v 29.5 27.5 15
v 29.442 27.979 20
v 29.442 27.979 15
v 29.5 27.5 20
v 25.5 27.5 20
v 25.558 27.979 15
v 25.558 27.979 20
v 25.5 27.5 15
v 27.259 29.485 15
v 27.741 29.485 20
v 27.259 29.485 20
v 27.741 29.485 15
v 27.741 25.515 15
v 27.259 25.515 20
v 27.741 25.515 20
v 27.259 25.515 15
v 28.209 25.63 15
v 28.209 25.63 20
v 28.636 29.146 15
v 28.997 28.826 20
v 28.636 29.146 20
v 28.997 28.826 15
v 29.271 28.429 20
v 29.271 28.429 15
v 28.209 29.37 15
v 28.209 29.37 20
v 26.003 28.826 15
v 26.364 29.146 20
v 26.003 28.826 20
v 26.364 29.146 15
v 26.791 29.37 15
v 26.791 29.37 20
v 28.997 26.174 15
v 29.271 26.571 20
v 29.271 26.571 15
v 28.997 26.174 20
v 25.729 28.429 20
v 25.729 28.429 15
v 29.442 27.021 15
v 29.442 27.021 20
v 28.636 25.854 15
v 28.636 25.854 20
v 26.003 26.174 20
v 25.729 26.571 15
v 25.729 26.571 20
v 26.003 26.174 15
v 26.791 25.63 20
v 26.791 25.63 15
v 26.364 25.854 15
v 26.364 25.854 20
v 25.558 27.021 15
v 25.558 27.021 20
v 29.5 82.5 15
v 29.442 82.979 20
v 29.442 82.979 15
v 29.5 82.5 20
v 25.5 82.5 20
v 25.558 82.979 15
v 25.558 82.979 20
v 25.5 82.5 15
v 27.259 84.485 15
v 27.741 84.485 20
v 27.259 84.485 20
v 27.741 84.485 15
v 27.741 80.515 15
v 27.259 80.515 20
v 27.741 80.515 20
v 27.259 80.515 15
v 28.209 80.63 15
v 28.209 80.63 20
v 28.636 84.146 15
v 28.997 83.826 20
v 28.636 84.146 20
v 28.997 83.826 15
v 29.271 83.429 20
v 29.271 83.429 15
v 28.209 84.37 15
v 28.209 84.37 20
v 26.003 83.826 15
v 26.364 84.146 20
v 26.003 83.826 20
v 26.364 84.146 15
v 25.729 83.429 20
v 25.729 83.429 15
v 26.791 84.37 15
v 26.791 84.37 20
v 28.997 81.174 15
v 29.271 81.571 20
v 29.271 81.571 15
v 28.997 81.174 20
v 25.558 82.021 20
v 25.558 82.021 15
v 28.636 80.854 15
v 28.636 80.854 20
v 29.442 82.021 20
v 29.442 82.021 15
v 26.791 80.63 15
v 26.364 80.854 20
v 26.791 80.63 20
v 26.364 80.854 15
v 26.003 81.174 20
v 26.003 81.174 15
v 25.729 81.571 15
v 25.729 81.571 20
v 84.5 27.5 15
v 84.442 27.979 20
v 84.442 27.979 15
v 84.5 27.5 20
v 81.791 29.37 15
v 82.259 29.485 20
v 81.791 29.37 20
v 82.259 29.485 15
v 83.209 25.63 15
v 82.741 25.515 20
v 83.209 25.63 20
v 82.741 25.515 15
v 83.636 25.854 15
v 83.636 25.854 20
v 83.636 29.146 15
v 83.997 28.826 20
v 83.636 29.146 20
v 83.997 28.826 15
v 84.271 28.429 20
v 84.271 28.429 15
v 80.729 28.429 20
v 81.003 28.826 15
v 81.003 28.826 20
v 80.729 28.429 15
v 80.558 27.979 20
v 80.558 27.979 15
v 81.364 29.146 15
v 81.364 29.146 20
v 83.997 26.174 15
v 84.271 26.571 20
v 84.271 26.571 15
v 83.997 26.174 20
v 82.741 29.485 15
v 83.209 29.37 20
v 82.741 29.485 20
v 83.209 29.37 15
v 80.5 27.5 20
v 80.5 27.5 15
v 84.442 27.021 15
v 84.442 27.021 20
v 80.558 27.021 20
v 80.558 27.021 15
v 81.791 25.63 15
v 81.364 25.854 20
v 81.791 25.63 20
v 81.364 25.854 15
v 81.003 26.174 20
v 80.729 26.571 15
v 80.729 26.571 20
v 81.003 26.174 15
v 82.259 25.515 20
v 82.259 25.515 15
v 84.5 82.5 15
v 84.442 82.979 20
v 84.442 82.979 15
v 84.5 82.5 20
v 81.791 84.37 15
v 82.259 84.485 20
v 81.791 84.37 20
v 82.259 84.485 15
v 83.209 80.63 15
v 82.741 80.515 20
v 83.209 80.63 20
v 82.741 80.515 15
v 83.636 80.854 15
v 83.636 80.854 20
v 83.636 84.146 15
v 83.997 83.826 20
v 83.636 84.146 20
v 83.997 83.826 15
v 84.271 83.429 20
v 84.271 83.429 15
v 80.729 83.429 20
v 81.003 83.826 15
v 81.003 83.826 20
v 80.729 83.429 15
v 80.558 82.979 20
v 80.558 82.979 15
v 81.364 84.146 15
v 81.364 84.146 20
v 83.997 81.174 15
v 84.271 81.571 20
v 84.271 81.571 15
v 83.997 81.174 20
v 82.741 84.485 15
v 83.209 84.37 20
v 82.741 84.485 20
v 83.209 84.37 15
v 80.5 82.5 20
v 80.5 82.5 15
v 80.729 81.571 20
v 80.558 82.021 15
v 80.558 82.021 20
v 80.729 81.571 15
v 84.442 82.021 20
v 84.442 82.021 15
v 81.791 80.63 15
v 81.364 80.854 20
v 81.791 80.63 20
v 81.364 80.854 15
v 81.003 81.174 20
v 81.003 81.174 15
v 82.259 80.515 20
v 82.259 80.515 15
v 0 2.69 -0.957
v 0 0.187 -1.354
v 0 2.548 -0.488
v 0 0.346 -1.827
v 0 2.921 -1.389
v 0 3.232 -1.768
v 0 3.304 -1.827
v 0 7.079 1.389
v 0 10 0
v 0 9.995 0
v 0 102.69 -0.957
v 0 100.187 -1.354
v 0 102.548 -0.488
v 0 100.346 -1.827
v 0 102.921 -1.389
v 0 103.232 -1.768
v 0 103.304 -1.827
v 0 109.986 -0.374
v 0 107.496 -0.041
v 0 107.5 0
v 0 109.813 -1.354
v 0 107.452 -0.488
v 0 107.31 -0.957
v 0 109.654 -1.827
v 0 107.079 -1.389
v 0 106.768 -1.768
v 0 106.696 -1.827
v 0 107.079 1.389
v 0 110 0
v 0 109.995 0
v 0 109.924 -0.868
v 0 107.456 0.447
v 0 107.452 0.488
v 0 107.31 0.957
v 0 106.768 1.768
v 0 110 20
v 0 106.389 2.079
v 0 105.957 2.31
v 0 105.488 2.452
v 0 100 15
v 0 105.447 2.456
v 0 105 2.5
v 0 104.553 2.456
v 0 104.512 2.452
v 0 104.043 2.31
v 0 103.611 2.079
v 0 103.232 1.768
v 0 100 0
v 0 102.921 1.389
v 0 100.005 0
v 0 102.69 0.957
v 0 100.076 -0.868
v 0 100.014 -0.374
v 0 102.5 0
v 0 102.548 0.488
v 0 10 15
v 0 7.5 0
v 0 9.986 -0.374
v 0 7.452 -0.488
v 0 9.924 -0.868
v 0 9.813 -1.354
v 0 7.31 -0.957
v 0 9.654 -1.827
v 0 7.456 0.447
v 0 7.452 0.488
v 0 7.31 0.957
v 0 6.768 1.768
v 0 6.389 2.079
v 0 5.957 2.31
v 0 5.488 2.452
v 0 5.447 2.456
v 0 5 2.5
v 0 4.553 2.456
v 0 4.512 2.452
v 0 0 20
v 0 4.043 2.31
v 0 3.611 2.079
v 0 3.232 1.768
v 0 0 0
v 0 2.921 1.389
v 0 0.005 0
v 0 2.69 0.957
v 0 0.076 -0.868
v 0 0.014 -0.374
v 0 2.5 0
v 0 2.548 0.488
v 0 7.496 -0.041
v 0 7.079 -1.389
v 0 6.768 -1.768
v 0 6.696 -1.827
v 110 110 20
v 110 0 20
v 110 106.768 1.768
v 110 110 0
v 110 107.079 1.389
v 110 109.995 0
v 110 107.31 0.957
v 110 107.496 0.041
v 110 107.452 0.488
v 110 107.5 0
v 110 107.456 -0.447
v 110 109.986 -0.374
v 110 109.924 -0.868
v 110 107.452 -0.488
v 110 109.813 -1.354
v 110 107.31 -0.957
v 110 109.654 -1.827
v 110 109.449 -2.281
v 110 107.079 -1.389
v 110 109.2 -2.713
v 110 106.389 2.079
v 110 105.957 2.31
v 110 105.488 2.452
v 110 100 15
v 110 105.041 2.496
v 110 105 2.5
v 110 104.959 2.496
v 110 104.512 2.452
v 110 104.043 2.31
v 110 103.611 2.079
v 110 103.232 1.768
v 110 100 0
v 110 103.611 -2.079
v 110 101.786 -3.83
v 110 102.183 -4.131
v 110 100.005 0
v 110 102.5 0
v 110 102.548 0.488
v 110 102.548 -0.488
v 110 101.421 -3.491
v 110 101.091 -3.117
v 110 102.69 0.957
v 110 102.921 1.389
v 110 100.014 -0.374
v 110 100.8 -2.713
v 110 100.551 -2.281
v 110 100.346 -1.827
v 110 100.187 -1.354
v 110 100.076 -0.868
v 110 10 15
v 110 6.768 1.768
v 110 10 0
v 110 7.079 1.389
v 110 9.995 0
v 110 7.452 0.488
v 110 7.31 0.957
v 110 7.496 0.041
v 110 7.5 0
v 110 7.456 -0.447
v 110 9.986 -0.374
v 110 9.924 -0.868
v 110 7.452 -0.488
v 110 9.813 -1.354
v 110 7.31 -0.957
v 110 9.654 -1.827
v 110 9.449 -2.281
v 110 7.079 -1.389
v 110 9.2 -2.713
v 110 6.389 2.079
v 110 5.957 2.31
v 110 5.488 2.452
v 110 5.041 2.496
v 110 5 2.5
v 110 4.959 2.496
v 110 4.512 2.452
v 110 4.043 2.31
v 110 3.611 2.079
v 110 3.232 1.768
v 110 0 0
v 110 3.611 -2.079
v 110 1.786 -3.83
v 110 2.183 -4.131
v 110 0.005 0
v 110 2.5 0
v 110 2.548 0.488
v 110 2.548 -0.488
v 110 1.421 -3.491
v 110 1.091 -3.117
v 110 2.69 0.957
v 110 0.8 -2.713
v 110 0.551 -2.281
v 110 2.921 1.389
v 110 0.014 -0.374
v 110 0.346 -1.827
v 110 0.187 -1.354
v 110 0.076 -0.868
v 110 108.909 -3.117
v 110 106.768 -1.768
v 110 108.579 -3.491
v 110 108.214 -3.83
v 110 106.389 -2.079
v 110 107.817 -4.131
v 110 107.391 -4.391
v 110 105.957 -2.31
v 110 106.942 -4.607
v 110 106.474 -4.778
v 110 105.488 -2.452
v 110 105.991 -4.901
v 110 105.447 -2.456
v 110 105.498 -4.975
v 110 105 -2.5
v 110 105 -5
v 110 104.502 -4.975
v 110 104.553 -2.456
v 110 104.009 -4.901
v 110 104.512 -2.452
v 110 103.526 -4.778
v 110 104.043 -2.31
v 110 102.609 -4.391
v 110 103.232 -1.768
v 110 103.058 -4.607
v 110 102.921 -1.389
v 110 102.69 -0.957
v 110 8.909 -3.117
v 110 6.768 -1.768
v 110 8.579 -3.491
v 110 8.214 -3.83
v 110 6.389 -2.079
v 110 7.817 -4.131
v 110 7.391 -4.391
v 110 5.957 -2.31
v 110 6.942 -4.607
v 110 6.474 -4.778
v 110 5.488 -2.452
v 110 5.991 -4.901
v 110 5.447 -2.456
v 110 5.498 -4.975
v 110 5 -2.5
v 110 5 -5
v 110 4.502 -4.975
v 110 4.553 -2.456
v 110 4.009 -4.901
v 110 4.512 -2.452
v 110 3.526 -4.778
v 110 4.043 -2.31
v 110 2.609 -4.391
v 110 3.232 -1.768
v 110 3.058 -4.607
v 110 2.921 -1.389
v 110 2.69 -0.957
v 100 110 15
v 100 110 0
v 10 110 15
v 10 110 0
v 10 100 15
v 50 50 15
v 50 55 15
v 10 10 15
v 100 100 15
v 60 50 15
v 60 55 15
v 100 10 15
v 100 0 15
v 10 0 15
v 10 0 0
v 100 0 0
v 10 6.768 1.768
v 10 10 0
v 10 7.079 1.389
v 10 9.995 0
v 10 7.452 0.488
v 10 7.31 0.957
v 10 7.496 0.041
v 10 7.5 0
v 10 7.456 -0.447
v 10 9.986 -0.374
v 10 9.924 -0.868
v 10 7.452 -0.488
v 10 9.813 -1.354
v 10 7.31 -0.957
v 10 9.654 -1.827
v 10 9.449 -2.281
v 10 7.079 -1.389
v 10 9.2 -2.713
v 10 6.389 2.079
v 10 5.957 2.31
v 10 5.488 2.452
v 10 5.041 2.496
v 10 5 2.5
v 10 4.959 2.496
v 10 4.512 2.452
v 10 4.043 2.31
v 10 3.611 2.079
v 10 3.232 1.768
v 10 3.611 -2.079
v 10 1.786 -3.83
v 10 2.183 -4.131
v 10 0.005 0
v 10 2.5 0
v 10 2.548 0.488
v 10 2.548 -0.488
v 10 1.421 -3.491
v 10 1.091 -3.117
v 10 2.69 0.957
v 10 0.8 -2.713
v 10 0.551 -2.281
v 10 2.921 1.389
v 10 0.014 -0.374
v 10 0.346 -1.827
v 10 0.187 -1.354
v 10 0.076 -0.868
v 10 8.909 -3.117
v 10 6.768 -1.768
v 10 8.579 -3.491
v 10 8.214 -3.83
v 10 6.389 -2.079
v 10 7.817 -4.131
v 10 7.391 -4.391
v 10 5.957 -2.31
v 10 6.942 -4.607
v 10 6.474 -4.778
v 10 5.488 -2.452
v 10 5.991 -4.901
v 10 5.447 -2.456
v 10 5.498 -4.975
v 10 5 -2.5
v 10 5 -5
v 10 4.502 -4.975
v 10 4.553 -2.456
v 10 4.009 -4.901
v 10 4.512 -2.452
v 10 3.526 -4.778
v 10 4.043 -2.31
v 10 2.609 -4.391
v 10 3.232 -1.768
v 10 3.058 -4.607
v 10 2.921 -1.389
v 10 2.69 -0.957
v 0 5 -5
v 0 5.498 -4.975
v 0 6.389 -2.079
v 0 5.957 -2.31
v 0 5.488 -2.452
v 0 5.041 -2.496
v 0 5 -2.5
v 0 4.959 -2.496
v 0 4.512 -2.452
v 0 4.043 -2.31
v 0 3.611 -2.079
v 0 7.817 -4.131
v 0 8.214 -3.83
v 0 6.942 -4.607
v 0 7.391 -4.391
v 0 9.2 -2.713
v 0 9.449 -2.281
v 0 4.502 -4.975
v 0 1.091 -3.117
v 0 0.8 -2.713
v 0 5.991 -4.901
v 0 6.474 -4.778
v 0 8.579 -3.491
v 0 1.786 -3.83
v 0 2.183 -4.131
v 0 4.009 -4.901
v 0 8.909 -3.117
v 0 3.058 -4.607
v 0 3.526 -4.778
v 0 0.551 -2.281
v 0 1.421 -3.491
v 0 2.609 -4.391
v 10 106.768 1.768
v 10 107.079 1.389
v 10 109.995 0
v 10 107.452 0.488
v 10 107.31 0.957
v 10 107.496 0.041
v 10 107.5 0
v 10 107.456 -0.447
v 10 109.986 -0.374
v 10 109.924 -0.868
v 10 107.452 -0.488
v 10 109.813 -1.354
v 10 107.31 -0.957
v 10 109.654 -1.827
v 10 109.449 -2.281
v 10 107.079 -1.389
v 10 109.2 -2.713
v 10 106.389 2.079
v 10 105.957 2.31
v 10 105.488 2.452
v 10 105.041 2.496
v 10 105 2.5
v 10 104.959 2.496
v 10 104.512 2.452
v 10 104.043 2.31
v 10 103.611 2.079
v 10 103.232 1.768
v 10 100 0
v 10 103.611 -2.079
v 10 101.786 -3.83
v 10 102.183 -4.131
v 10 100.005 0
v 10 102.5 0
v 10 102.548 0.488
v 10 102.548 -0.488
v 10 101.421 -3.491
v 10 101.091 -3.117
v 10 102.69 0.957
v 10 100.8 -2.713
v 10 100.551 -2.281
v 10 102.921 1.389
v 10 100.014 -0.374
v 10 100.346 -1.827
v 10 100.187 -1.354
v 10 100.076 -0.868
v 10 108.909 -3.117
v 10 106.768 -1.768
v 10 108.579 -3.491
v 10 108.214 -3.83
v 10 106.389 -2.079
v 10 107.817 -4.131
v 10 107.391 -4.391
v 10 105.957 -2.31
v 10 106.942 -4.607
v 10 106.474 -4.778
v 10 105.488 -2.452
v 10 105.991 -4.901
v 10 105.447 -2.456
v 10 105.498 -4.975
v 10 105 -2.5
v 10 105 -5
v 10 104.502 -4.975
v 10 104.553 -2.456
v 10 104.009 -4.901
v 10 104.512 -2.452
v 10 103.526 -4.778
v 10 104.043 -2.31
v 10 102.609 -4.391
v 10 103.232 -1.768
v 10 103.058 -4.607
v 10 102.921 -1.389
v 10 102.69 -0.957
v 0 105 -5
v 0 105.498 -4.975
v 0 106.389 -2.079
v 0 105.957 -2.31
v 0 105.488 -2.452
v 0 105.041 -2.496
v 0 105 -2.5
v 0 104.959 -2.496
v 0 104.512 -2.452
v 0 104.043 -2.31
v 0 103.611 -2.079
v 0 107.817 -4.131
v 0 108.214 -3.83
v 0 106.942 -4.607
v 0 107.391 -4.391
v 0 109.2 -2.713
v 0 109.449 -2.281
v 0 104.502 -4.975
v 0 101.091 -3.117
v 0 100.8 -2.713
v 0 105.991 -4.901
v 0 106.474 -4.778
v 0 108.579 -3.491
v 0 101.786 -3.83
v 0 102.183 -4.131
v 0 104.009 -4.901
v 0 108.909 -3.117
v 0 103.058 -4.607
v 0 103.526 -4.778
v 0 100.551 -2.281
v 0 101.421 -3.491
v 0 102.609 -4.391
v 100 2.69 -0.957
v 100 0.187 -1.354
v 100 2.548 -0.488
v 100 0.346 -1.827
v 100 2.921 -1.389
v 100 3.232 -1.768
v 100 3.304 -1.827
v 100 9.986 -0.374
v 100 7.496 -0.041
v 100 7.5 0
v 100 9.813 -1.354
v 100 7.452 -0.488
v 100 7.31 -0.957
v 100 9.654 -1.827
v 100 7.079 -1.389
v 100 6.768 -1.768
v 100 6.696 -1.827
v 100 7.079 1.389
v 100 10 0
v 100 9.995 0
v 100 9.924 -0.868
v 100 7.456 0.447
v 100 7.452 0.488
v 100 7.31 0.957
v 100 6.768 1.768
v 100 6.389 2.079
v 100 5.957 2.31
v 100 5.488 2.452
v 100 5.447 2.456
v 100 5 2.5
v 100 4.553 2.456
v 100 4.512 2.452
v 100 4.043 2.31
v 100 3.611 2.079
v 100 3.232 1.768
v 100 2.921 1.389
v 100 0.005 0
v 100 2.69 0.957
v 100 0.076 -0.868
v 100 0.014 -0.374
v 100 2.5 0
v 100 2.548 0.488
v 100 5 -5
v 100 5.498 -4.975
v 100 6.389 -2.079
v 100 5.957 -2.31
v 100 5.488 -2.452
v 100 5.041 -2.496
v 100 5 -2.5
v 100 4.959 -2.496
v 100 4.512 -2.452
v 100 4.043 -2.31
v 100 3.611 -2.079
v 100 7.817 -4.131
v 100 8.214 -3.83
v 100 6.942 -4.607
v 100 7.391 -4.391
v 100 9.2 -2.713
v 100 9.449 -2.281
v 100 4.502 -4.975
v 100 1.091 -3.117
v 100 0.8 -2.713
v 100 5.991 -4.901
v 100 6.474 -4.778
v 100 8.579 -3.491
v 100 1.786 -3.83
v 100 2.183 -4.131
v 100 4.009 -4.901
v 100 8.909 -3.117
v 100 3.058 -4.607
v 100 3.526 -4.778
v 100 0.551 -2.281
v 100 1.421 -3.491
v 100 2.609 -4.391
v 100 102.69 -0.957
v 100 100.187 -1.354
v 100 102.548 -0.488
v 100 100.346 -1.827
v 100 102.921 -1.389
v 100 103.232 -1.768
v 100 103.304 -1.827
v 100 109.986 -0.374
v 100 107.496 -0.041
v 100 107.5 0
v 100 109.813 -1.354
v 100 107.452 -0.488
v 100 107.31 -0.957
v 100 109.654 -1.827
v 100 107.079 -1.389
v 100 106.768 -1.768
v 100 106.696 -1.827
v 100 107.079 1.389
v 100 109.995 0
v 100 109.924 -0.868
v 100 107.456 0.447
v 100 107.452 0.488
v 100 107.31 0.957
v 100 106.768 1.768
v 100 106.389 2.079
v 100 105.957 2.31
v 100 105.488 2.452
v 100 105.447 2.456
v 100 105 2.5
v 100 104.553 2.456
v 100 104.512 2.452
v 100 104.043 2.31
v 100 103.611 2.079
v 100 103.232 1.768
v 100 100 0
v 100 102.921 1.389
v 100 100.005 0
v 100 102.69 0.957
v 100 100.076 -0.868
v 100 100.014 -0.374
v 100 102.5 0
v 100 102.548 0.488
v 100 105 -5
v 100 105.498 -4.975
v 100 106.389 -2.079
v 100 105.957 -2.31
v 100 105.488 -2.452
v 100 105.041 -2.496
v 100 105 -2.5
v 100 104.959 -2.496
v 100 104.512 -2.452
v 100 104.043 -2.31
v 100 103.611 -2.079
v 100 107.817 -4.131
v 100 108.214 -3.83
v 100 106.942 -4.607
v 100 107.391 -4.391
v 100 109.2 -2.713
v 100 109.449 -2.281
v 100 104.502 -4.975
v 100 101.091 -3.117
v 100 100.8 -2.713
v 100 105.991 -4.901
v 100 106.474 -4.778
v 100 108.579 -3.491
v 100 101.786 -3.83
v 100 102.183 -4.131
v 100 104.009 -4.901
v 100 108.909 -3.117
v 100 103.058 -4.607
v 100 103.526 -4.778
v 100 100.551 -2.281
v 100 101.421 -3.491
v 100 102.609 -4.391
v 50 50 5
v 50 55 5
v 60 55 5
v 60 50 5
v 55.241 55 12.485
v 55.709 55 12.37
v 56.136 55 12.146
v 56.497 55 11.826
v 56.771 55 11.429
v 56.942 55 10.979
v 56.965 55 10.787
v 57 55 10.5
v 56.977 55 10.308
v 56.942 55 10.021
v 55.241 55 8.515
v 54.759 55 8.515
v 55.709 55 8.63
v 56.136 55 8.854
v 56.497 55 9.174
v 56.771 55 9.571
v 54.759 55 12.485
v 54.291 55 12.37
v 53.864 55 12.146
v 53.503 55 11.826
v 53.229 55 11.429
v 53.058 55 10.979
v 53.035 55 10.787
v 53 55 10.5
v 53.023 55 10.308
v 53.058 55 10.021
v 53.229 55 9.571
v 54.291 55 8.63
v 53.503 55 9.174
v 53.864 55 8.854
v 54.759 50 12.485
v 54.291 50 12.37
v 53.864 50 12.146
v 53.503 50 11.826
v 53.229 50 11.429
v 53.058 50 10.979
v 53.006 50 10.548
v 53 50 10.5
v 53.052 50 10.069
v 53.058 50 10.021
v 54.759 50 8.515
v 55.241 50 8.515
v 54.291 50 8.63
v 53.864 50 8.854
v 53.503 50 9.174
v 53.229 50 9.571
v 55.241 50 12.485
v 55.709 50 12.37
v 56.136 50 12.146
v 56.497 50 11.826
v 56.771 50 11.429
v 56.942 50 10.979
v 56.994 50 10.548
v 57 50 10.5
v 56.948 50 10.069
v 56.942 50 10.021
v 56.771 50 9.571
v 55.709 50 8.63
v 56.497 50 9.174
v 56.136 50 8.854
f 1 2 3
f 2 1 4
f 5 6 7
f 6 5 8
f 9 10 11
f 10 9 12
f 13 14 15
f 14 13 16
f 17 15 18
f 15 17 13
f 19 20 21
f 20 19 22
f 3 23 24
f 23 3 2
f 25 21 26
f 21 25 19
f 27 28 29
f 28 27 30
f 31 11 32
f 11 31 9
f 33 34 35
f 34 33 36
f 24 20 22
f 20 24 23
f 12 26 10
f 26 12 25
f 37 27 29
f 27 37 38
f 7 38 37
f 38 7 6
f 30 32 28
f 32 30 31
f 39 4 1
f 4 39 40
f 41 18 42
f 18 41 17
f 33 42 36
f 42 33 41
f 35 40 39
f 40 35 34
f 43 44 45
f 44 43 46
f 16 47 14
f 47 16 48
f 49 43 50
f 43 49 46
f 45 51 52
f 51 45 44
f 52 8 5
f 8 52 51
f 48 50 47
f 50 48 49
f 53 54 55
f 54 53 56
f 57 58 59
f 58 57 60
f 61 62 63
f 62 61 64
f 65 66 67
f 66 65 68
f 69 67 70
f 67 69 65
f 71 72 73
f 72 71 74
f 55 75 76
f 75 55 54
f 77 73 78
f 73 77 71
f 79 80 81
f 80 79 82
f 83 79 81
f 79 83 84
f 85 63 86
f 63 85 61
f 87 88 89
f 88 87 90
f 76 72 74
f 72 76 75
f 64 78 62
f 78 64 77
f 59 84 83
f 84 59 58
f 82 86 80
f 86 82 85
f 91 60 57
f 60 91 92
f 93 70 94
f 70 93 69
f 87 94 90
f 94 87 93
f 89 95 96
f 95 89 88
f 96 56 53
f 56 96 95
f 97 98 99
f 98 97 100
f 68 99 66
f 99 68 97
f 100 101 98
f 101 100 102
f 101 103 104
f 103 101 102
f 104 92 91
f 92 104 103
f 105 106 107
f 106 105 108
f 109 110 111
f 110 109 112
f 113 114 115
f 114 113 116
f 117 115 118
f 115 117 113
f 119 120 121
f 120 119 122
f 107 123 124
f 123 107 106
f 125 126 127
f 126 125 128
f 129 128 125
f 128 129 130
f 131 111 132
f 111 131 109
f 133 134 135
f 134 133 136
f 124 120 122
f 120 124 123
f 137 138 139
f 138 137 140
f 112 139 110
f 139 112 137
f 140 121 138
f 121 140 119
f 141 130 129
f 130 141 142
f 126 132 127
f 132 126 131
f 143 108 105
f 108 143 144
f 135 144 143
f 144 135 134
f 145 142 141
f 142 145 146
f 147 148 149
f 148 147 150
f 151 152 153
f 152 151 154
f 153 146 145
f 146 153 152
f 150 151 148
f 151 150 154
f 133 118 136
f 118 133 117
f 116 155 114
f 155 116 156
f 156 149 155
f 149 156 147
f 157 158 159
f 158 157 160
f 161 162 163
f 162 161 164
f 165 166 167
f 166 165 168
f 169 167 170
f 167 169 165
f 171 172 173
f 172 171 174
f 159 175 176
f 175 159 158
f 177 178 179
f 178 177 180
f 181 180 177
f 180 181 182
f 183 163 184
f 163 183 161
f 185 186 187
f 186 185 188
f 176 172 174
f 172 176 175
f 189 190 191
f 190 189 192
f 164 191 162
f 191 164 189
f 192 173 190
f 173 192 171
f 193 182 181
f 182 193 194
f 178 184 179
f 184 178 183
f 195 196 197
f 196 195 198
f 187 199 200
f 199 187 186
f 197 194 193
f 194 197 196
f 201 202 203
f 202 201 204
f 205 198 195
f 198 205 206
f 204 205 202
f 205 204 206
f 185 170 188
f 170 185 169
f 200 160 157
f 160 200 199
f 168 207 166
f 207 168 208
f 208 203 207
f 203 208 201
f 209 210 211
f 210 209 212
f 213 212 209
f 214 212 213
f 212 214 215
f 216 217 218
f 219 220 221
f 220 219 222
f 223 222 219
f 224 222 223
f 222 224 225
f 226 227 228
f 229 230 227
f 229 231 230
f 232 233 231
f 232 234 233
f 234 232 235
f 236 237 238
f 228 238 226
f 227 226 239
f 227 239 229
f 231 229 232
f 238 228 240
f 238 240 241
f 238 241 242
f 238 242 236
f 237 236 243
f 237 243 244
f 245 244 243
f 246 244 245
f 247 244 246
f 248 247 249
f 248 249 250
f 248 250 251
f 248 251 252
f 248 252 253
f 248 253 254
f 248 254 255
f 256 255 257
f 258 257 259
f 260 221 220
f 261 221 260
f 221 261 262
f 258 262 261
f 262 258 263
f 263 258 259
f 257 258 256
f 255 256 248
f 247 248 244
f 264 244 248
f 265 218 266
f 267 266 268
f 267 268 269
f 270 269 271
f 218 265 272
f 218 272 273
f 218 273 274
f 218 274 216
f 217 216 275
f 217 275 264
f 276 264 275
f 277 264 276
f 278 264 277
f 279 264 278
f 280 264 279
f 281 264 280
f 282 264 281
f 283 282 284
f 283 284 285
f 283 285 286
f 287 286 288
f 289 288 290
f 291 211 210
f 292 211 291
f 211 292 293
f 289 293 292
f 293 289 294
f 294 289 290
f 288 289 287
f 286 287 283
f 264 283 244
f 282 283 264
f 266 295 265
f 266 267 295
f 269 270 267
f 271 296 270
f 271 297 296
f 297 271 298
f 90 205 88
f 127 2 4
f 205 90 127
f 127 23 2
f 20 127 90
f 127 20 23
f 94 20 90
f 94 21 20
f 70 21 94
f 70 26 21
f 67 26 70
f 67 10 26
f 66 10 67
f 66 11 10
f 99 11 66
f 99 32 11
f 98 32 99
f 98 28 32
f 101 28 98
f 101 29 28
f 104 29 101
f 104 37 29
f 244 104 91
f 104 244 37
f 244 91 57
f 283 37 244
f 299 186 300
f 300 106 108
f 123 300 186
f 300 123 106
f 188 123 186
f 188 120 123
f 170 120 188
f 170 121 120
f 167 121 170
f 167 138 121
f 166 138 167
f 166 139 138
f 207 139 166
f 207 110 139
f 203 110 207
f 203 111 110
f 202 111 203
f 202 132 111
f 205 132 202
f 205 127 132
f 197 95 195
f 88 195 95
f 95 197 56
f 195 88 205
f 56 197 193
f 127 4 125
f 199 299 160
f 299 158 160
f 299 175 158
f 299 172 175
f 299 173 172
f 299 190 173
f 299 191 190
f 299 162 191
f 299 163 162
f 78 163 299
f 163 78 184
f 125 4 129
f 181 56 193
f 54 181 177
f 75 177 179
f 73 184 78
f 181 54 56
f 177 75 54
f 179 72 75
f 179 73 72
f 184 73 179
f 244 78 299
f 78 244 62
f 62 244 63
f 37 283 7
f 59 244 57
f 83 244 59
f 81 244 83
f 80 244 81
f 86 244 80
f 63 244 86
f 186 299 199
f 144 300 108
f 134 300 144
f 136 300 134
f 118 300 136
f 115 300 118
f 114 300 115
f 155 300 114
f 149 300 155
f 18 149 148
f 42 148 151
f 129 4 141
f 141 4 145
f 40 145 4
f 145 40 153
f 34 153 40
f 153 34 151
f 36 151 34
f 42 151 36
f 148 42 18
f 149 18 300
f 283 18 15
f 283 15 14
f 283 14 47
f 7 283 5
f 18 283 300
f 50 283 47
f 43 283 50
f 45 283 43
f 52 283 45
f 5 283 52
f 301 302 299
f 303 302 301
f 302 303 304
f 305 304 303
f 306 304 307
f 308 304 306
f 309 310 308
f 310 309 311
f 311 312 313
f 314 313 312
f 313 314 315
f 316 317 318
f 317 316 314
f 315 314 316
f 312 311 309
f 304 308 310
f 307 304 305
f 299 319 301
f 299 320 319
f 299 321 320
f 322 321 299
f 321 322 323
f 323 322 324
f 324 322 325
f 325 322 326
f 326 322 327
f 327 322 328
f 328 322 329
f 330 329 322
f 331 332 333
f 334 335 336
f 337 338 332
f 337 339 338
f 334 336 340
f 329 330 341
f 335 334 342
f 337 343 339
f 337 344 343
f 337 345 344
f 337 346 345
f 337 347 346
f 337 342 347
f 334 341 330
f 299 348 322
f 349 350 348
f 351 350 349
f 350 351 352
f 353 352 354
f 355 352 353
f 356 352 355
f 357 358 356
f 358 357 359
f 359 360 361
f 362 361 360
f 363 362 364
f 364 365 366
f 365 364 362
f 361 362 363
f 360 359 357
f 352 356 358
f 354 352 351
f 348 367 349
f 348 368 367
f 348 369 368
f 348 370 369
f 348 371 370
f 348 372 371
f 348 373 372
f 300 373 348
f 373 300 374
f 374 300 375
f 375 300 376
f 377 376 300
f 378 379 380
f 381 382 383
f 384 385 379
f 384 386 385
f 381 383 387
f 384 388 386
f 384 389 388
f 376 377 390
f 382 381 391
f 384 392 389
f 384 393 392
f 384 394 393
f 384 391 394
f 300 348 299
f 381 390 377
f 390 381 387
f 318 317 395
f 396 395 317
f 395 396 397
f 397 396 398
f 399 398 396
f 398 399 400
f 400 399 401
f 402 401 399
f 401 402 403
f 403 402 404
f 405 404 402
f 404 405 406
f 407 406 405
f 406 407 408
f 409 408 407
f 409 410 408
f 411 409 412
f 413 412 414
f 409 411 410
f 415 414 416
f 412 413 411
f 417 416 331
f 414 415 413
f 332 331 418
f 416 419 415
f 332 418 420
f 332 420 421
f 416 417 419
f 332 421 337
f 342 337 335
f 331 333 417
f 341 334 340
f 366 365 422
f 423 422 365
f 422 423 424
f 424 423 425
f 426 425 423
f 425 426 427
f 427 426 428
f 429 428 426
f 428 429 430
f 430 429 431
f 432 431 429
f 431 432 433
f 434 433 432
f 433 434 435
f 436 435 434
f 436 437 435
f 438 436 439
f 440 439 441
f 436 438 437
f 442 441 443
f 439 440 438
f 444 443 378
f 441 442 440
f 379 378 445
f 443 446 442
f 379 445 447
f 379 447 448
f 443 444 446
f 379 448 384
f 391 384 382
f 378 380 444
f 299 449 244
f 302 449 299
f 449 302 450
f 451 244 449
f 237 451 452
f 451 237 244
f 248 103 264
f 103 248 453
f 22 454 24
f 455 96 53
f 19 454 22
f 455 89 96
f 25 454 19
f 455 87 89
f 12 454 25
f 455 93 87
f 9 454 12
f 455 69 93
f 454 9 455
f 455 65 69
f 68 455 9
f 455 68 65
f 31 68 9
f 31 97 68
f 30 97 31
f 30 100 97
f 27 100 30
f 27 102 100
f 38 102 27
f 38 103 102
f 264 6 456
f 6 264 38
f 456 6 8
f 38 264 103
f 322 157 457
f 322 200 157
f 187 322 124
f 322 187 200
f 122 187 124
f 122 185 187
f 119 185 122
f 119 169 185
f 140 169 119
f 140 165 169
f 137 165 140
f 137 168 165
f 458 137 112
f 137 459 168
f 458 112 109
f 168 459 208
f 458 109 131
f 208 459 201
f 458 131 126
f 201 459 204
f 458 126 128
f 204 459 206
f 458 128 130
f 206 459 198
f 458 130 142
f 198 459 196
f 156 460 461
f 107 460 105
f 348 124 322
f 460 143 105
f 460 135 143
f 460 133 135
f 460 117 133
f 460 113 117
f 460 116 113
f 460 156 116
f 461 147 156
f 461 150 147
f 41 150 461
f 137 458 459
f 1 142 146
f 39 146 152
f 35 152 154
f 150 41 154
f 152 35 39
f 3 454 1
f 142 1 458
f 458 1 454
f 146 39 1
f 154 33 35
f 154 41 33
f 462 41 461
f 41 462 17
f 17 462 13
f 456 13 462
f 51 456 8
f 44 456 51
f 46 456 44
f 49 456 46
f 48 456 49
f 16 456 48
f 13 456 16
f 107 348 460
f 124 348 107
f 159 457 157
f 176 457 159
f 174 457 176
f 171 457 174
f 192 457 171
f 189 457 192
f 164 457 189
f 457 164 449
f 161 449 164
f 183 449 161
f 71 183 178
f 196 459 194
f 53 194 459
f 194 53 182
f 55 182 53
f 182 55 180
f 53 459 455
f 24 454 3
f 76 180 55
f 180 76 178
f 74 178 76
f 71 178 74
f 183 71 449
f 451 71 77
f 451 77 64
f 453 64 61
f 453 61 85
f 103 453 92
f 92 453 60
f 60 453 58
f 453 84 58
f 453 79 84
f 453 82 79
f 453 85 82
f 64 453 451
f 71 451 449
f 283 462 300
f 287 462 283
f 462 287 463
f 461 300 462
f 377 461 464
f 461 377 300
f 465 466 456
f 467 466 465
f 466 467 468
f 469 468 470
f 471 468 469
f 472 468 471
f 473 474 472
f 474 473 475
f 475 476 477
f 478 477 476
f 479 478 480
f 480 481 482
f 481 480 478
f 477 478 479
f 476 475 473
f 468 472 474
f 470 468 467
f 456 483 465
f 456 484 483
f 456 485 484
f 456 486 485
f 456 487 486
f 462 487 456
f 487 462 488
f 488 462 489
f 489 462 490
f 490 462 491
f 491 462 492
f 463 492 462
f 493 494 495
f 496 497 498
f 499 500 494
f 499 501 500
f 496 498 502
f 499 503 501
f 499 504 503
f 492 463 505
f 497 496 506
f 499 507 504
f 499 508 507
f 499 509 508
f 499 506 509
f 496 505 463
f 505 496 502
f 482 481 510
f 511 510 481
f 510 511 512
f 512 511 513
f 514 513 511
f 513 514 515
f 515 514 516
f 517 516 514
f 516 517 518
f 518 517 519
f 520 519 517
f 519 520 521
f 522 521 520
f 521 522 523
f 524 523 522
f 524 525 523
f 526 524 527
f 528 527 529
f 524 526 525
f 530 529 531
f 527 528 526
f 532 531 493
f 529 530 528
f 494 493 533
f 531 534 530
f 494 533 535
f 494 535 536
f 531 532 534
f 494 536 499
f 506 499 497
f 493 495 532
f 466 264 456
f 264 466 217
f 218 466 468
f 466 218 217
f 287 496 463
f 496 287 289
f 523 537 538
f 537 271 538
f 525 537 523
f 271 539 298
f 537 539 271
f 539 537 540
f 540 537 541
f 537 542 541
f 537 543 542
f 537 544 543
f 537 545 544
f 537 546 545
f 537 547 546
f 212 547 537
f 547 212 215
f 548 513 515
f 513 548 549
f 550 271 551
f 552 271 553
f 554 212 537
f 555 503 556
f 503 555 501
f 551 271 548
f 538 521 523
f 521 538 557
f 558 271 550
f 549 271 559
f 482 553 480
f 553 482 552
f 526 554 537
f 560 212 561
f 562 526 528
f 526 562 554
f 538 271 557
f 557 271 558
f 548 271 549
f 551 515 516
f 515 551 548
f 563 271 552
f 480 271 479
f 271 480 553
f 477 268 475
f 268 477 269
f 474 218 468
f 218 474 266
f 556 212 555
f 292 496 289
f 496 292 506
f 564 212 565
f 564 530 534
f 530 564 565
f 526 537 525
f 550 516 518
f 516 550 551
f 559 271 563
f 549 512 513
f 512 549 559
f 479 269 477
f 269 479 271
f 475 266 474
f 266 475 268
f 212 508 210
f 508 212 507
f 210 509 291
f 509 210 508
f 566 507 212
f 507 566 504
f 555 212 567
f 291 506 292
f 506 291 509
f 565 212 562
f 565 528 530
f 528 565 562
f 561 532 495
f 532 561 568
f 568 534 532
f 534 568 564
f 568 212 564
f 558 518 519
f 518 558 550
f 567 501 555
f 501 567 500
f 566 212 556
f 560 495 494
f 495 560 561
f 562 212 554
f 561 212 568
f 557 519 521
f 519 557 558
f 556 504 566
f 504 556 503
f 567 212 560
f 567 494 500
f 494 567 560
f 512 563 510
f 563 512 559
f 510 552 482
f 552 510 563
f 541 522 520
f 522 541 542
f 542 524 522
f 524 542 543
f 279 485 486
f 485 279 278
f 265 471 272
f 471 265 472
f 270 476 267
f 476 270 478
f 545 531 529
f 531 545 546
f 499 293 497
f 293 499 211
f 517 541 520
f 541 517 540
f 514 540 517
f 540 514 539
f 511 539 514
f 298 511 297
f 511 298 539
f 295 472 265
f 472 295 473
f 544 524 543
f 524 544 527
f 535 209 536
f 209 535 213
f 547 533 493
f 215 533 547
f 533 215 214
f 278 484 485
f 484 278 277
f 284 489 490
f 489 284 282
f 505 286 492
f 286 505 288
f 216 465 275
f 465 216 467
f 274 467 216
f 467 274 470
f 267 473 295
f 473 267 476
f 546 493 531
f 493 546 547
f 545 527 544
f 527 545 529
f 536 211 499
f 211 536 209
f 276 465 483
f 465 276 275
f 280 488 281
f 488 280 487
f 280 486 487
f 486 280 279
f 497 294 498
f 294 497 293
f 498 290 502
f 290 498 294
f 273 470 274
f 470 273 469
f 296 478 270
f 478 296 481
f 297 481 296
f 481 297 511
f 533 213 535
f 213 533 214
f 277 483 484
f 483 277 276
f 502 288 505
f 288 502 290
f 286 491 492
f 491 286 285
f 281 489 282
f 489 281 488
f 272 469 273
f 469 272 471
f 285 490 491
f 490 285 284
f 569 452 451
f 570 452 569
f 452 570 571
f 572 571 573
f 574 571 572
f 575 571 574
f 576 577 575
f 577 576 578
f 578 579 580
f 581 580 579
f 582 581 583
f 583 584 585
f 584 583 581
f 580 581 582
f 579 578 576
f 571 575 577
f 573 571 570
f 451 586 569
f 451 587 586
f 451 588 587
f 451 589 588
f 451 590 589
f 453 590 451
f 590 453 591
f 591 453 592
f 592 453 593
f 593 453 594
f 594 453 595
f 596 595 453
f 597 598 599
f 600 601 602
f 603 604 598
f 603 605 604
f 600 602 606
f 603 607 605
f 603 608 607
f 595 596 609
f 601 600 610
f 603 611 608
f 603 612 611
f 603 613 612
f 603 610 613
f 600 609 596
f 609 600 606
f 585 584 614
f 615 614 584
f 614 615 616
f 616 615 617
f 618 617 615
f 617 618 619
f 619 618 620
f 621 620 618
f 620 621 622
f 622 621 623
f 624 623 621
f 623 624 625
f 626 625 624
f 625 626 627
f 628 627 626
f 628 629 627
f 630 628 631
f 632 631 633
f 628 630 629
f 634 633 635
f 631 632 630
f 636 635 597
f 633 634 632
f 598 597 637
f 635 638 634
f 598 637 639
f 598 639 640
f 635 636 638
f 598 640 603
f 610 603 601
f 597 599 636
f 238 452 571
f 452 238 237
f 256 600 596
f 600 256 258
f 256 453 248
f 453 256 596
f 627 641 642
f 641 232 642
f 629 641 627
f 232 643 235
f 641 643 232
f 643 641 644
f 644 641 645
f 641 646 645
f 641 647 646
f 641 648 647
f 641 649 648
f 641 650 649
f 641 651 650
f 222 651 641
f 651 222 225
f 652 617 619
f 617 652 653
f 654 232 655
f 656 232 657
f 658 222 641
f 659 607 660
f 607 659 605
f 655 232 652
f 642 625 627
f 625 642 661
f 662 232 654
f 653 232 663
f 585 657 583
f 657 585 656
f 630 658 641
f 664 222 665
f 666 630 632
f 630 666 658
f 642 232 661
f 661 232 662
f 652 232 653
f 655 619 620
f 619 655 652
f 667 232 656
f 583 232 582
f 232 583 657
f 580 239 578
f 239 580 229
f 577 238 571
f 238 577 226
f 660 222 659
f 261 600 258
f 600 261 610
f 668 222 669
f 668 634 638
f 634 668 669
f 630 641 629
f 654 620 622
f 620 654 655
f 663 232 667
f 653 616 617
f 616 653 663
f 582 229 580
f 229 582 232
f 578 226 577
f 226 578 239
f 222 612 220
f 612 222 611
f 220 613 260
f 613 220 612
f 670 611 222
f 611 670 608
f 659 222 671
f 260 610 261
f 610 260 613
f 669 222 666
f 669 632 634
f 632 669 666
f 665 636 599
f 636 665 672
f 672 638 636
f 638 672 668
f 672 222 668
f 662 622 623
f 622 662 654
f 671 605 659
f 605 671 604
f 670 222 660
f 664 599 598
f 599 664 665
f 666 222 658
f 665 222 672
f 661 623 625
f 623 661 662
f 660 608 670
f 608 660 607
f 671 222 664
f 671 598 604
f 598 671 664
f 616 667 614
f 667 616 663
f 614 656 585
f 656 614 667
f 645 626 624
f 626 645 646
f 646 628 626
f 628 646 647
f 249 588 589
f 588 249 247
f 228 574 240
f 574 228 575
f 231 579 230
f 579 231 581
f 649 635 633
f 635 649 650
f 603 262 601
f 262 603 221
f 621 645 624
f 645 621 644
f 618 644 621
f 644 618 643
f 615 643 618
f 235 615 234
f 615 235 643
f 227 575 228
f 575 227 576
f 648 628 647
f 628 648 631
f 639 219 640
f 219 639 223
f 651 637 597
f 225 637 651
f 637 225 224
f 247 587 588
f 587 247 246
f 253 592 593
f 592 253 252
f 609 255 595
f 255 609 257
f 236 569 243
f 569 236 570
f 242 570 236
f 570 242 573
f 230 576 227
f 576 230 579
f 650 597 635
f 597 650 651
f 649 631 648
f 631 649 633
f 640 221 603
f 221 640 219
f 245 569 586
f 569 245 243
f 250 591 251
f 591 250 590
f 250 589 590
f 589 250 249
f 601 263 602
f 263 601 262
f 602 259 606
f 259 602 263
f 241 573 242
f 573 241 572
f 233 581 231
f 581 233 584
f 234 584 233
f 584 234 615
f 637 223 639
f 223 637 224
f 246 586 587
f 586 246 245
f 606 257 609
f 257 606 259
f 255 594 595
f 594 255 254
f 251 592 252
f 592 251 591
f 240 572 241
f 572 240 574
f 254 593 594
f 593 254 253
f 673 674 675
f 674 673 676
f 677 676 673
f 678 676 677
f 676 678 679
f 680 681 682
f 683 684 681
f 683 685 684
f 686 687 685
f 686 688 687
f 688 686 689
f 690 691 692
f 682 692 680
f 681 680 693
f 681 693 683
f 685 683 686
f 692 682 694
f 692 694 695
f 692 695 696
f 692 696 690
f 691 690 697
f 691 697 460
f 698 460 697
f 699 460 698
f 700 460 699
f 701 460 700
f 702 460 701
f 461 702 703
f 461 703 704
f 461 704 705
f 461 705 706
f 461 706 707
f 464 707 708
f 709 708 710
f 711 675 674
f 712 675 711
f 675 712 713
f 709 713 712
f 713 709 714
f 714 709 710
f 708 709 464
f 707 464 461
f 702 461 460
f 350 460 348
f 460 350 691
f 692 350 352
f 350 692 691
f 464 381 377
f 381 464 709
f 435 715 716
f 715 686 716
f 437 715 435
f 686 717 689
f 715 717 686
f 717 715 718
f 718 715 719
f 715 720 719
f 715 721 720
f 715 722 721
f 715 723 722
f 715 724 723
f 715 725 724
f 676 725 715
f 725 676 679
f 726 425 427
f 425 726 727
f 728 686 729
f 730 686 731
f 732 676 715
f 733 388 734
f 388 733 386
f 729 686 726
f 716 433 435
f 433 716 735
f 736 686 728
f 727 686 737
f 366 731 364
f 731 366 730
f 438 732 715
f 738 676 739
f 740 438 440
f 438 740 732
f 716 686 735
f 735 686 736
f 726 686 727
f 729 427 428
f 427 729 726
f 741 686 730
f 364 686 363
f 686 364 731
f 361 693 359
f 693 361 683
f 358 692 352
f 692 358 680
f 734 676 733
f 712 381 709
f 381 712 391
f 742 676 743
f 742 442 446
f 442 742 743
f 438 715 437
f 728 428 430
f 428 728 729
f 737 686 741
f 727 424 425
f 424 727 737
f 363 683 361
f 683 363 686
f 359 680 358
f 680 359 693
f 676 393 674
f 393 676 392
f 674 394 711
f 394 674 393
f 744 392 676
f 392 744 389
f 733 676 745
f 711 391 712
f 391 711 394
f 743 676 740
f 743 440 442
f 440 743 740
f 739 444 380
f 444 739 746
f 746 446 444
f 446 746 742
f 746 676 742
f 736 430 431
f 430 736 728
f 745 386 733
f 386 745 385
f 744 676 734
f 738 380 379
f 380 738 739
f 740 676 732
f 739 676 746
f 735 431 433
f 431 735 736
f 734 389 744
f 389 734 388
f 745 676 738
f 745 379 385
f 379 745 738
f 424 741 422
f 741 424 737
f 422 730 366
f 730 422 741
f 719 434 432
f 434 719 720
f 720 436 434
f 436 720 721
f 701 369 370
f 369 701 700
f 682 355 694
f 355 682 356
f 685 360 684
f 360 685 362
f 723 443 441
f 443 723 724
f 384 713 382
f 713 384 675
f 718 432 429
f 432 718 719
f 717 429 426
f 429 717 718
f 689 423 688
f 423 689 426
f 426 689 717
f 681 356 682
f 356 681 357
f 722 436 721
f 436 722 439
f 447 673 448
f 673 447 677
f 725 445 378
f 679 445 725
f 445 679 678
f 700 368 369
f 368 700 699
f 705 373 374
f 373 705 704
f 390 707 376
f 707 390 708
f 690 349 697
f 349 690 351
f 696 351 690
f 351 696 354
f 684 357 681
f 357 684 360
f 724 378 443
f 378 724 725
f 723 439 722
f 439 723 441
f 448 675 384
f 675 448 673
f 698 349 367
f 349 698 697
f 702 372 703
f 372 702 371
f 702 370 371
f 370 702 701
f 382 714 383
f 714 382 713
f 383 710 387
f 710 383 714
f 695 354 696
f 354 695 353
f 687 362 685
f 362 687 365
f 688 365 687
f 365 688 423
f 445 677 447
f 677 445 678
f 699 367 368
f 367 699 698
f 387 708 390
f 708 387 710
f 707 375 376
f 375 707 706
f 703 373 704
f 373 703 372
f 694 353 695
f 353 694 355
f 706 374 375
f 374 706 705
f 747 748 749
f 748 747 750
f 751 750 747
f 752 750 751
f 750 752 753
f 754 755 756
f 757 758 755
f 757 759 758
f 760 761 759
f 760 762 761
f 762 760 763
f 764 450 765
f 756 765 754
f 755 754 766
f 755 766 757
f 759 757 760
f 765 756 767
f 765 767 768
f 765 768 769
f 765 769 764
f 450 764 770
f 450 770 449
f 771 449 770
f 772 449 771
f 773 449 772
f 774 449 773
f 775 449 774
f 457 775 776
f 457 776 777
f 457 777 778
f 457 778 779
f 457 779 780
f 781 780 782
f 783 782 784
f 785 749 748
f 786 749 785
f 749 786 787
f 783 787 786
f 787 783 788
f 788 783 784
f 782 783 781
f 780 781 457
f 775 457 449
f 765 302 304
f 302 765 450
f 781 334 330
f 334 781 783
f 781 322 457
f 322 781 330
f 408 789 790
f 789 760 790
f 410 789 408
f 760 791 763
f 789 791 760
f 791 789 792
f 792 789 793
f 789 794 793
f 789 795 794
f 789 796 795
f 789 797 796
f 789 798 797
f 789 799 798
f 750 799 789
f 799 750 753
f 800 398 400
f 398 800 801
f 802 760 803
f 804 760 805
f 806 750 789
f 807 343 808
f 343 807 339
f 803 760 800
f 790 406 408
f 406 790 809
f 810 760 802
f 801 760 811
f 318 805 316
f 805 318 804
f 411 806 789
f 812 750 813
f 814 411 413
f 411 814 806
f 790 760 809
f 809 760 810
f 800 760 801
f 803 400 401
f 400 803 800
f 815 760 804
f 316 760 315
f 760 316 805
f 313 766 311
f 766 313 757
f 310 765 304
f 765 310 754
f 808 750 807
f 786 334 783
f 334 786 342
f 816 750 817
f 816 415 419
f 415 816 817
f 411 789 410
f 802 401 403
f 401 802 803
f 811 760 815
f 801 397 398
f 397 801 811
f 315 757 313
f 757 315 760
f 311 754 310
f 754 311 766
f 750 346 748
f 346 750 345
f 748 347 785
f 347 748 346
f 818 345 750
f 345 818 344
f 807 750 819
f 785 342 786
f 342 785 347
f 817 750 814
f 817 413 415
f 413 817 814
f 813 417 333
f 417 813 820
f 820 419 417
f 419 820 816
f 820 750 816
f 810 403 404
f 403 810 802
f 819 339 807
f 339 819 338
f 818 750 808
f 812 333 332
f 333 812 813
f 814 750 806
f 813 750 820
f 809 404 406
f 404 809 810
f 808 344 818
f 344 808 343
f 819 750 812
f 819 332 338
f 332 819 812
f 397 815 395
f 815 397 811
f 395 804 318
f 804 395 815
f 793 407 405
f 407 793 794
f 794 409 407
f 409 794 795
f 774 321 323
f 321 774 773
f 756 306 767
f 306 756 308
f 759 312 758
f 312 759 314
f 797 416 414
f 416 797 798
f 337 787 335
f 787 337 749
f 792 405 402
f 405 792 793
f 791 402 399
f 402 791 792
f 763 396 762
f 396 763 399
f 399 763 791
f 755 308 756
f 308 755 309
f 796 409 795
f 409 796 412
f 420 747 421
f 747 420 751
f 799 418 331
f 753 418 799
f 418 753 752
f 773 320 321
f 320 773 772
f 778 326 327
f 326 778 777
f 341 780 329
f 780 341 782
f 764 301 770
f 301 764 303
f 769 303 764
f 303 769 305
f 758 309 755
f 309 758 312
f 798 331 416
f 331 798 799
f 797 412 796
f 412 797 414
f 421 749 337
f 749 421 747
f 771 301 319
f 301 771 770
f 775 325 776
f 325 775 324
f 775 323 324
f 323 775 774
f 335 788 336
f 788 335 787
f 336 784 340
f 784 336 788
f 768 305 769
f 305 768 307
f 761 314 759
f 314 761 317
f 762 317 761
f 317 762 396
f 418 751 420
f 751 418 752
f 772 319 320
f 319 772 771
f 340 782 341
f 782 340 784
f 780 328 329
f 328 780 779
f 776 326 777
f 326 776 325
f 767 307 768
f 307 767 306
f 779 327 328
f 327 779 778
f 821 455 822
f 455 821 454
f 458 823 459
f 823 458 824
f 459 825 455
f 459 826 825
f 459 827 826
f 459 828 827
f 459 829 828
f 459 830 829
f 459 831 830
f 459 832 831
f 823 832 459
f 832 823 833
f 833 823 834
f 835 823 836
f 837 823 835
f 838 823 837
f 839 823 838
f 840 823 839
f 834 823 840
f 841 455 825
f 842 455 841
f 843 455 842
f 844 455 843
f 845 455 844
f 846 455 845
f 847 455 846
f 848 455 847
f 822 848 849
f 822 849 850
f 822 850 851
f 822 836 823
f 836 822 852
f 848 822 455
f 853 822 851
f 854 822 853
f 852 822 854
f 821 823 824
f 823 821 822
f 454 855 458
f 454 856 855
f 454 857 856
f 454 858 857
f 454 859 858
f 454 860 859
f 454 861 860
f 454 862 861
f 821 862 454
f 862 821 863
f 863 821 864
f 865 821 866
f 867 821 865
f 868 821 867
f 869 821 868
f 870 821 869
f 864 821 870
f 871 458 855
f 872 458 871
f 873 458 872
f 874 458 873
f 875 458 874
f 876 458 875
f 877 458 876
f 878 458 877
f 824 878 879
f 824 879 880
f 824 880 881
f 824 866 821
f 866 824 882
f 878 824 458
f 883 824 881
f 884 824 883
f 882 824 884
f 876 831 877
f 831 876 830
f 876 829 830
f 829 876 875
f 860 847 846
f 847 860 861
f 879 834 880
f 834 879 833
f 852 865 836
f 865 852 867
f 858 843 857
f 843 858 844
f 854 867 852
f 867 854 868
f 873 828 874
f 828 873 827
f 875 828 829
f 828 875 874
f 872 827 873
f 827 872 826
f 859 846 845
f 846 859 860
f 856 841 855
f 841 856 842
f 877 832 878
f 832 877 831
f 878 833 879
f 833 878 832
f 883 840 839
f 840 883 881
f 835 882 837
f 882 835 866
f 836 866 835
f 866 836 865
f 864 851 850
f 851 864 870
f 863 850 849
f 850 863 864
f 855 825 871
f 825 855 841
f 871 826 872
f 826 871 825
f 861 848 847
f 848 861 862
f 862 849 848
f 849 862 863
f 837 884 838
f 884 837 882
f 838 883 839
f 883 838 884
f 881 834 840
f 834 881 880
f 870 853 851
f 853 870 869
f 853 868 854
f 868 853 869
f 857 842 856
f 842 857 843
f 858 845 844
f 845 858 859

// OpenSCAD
module Bed(height=5, thickness=10, rod_separation=100, rod_radius=2, screw_radius=2,
            gap=15, fit_factor=1.25) {
                
    // Foot Module
    module Foot() {
        translate([thickness/2, thickness/2, -gap/2])
        difference() {
            union() {
                cube([thickness, thickness, gap], center=true);
                translate([-thickness/2, 0, -gap/2]) rotate([0, 90, 0]) 
                    cylinder(r=thickness/2, h=thickness);
            }
            translate([-thickness/2-1, 0, -gap/2]) rotate([0, 90, 0]) 
                    cylinder(r=fit_factor*rod_radius, h=thickness+2);
        }
    }
    
    
    translate([(rod_separation+thickness)/2, (rod_separation+thickness)/2, 
                gap+height/2]){
    
    // bed with holes
    difference() {
        cube([rod_separation+thickness, rod_separation+thickness, 
            height], center=true);
        for(x = [-(rod_separation+thickness)/4, (rod_separation+thickness)/4]) {
            for(y = [-(rod_separation+thickness)/4, (rod_separation+thickness)/4]) {
                translate([x, y, 0]) cylinder(r=screw_radius, h=height+2, 
                    center=true);
            }
        }
    }
    
    // place rod grabbers
    for(x = [-(rod_separation+thickness)/2, (rod_separation-thickness)/2]) {
        for(y = [-(rod_separation+thickness)/2, (rod_separation-thickness)/2]) {
            translate([x, y, -height/2]) Foot();
        }
    }
    
    //place string grabber
    difference() {
        translate([0, -thickness/4, -(height+thickness)/2]) 
            cube([thickness, thickness/2, thickness], center=true);
        translate([0,-1,-gap-height/2+10.5]) rotate([90, 0, 0])
            cylinder(r=screw_radius, h=thickness, center=true);
    }
    
}
}

Bed($fa=.5, $fs=.5);
